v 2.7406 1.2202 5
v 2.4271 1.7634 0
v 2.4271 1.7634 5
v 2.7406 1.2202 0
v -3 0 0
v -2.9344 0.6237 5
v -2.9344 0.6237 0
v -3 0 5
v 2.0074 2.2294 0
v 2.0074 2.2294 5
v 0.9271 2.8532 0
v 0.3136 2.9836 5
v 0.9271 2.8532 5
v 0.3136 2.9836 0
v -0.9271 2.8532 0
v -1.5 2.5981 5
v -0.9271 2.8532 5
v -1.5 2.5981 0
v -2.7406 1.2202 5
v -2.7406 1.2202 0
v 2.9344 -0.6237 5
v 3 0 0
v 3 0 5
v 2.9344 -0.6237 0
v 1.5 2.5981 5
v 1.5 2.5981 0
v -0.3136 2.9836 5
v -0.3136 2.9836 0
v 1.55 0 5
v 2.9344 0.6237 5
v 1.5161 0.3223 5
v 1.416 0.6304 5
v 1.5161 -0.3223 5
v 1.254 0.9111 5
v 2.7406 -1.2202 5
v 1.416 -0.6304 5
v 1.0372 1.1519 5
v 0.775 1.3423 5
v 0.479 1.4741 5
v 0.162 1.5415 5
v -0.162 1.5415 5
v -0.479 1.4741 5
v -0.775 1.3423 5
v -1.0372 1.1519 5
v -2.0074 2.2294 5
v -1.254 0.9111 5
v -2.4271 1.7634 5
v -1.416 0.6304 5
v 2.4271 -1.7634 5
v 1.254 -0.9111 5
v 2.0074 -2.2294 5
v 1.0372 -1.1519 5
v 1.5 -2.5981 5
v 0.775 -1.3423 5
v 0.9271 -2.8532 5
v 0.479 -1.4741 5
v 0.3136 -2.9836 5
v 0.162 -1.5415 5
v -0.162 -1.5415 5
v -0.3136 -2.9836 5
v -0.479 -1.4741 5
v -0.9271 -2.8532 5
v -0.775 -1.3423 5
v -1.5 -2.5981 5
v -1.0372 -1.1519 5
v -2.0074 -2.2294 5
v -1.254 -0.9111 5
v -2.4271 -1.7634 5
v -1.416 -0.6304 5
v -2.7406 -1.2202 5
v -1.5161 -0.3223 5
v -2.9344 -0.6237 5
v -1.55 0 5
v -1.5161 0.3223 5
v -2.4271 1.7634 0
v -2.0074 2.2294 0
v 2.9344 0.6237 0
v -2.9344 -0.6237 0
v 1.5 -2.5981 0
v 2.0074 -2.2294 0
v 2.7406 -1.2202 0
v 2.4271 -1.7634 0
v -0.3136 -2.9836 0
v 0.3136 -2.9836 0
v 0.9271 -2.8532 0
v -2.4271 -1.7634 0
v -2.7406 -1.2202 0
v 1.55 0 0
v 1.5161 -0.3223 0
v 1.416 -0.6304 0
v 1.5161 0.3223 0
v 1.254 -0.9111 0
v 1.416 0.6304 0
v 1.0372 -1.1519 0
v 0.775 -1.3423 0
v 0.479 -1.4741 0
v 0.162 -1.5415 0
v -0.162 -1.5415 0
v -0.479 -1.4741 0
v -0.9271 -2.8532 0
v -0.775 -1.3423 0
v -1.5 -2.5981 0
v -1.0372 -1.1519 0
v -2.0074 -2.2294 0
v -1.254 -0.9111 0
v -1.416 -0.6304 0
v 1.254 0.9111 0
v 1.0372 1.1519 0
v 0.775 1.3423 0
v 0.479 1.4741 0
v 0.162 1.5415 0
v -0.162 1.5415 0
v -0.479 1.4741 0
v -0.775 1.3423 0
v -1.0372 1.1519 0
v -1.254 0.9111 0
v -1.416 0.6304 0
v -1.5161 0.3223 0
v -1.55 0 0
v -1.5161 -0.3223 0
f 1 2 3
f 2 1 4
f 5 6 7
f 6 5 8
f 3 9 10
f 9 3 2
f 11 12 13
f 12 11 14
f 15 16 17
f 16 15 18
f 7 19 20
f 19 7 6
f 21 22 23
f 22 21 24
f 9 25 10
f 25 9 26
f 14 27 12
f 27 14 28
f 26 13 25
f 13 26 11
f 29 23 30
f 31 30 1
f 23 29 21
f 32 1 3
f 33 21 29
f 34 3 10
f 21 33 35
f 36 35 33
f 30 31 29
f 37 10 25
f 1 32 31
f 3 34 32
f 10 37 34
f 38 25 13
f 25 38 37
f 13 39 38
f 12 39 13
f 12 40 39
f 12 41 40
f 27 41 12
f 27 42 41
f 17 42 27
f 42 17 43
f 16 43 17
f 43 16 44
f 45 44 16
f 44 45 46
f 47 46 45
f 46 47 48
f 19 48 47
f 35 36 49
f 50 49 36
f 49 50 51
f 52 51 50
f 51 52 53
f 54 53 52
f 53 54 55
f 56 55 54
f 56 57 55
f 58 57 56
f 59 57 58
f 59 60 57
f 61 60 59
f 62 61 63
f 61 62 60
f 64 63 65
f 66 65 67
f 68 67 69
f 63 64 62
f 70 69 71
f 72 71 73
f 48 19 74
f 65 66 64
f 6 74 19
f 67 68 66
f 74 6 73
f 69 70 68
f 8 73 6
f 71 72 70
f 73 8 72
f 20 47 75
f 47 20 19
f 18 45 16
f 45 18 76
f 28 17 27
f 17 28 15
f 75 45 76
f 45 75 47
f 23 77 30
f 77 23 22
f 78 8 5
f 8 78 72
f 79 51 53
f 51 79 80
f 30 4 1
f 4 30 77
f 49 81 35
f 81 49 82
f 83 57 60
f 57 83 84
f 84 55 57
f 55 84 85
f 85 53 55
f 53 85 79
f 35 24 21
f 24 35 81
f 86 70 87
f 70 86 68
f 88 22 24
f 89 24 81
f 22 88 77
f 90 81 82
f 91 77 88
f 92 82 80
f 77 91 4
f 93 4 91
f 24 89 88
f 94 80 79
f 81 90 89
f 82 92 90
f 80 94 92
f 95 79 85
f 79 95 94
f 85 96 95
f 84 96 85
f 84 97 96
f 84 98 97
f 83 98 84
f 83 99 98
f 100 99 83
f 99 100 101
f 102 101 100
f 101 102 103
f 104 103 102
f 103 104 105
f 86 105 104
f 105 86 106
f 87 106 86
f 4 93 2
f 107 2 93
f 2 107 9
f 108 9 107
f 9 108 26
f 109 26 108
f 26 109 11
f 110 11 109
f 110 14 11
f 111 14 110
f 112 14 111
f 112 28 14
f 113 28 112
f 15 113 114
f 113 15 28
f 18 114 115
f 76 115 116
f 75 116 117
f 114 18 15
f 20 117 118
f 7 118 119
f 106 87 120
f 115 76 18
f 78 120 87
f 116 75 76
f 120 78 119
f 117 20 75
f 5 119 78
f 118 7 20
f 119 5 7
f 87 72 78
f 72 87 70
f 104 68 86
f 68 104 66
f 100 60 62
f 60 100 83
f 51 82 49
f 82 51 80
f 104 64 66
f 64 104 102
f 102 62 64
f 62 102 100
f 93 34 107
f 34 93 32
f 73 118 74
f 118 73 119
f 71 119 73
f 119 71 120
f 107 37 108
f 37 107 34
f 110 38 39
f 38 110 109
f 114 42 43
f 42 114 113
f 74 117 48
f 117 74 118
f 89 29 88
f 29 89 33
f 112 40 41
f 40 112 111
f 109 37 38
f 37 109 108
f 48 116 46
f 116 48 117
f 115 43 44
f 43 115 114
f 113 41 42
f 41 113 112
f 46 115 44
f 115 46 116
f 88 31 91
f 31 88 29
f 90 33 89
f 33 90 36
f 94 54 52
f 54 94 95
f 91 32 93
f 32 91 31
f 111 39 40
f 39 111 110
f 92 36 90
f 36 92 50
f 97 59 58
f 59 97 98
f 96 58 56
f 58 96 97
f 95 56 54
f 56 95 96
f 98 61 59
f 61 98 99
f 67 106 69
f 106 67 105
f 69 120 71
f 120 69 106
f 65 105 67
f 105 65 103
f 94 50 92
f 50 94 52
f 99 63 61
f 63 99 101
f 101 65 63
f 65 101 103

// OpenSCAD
height = 5;

pcb_distance();

module pcb_distance(){
    difference(){
        union(){
            cylinder(h=height,d=6,$fn=30);
        }
        translate([0,0,-0.1]) cylinder(h=height+1,d=3.1,$fn=30);
    }
}
